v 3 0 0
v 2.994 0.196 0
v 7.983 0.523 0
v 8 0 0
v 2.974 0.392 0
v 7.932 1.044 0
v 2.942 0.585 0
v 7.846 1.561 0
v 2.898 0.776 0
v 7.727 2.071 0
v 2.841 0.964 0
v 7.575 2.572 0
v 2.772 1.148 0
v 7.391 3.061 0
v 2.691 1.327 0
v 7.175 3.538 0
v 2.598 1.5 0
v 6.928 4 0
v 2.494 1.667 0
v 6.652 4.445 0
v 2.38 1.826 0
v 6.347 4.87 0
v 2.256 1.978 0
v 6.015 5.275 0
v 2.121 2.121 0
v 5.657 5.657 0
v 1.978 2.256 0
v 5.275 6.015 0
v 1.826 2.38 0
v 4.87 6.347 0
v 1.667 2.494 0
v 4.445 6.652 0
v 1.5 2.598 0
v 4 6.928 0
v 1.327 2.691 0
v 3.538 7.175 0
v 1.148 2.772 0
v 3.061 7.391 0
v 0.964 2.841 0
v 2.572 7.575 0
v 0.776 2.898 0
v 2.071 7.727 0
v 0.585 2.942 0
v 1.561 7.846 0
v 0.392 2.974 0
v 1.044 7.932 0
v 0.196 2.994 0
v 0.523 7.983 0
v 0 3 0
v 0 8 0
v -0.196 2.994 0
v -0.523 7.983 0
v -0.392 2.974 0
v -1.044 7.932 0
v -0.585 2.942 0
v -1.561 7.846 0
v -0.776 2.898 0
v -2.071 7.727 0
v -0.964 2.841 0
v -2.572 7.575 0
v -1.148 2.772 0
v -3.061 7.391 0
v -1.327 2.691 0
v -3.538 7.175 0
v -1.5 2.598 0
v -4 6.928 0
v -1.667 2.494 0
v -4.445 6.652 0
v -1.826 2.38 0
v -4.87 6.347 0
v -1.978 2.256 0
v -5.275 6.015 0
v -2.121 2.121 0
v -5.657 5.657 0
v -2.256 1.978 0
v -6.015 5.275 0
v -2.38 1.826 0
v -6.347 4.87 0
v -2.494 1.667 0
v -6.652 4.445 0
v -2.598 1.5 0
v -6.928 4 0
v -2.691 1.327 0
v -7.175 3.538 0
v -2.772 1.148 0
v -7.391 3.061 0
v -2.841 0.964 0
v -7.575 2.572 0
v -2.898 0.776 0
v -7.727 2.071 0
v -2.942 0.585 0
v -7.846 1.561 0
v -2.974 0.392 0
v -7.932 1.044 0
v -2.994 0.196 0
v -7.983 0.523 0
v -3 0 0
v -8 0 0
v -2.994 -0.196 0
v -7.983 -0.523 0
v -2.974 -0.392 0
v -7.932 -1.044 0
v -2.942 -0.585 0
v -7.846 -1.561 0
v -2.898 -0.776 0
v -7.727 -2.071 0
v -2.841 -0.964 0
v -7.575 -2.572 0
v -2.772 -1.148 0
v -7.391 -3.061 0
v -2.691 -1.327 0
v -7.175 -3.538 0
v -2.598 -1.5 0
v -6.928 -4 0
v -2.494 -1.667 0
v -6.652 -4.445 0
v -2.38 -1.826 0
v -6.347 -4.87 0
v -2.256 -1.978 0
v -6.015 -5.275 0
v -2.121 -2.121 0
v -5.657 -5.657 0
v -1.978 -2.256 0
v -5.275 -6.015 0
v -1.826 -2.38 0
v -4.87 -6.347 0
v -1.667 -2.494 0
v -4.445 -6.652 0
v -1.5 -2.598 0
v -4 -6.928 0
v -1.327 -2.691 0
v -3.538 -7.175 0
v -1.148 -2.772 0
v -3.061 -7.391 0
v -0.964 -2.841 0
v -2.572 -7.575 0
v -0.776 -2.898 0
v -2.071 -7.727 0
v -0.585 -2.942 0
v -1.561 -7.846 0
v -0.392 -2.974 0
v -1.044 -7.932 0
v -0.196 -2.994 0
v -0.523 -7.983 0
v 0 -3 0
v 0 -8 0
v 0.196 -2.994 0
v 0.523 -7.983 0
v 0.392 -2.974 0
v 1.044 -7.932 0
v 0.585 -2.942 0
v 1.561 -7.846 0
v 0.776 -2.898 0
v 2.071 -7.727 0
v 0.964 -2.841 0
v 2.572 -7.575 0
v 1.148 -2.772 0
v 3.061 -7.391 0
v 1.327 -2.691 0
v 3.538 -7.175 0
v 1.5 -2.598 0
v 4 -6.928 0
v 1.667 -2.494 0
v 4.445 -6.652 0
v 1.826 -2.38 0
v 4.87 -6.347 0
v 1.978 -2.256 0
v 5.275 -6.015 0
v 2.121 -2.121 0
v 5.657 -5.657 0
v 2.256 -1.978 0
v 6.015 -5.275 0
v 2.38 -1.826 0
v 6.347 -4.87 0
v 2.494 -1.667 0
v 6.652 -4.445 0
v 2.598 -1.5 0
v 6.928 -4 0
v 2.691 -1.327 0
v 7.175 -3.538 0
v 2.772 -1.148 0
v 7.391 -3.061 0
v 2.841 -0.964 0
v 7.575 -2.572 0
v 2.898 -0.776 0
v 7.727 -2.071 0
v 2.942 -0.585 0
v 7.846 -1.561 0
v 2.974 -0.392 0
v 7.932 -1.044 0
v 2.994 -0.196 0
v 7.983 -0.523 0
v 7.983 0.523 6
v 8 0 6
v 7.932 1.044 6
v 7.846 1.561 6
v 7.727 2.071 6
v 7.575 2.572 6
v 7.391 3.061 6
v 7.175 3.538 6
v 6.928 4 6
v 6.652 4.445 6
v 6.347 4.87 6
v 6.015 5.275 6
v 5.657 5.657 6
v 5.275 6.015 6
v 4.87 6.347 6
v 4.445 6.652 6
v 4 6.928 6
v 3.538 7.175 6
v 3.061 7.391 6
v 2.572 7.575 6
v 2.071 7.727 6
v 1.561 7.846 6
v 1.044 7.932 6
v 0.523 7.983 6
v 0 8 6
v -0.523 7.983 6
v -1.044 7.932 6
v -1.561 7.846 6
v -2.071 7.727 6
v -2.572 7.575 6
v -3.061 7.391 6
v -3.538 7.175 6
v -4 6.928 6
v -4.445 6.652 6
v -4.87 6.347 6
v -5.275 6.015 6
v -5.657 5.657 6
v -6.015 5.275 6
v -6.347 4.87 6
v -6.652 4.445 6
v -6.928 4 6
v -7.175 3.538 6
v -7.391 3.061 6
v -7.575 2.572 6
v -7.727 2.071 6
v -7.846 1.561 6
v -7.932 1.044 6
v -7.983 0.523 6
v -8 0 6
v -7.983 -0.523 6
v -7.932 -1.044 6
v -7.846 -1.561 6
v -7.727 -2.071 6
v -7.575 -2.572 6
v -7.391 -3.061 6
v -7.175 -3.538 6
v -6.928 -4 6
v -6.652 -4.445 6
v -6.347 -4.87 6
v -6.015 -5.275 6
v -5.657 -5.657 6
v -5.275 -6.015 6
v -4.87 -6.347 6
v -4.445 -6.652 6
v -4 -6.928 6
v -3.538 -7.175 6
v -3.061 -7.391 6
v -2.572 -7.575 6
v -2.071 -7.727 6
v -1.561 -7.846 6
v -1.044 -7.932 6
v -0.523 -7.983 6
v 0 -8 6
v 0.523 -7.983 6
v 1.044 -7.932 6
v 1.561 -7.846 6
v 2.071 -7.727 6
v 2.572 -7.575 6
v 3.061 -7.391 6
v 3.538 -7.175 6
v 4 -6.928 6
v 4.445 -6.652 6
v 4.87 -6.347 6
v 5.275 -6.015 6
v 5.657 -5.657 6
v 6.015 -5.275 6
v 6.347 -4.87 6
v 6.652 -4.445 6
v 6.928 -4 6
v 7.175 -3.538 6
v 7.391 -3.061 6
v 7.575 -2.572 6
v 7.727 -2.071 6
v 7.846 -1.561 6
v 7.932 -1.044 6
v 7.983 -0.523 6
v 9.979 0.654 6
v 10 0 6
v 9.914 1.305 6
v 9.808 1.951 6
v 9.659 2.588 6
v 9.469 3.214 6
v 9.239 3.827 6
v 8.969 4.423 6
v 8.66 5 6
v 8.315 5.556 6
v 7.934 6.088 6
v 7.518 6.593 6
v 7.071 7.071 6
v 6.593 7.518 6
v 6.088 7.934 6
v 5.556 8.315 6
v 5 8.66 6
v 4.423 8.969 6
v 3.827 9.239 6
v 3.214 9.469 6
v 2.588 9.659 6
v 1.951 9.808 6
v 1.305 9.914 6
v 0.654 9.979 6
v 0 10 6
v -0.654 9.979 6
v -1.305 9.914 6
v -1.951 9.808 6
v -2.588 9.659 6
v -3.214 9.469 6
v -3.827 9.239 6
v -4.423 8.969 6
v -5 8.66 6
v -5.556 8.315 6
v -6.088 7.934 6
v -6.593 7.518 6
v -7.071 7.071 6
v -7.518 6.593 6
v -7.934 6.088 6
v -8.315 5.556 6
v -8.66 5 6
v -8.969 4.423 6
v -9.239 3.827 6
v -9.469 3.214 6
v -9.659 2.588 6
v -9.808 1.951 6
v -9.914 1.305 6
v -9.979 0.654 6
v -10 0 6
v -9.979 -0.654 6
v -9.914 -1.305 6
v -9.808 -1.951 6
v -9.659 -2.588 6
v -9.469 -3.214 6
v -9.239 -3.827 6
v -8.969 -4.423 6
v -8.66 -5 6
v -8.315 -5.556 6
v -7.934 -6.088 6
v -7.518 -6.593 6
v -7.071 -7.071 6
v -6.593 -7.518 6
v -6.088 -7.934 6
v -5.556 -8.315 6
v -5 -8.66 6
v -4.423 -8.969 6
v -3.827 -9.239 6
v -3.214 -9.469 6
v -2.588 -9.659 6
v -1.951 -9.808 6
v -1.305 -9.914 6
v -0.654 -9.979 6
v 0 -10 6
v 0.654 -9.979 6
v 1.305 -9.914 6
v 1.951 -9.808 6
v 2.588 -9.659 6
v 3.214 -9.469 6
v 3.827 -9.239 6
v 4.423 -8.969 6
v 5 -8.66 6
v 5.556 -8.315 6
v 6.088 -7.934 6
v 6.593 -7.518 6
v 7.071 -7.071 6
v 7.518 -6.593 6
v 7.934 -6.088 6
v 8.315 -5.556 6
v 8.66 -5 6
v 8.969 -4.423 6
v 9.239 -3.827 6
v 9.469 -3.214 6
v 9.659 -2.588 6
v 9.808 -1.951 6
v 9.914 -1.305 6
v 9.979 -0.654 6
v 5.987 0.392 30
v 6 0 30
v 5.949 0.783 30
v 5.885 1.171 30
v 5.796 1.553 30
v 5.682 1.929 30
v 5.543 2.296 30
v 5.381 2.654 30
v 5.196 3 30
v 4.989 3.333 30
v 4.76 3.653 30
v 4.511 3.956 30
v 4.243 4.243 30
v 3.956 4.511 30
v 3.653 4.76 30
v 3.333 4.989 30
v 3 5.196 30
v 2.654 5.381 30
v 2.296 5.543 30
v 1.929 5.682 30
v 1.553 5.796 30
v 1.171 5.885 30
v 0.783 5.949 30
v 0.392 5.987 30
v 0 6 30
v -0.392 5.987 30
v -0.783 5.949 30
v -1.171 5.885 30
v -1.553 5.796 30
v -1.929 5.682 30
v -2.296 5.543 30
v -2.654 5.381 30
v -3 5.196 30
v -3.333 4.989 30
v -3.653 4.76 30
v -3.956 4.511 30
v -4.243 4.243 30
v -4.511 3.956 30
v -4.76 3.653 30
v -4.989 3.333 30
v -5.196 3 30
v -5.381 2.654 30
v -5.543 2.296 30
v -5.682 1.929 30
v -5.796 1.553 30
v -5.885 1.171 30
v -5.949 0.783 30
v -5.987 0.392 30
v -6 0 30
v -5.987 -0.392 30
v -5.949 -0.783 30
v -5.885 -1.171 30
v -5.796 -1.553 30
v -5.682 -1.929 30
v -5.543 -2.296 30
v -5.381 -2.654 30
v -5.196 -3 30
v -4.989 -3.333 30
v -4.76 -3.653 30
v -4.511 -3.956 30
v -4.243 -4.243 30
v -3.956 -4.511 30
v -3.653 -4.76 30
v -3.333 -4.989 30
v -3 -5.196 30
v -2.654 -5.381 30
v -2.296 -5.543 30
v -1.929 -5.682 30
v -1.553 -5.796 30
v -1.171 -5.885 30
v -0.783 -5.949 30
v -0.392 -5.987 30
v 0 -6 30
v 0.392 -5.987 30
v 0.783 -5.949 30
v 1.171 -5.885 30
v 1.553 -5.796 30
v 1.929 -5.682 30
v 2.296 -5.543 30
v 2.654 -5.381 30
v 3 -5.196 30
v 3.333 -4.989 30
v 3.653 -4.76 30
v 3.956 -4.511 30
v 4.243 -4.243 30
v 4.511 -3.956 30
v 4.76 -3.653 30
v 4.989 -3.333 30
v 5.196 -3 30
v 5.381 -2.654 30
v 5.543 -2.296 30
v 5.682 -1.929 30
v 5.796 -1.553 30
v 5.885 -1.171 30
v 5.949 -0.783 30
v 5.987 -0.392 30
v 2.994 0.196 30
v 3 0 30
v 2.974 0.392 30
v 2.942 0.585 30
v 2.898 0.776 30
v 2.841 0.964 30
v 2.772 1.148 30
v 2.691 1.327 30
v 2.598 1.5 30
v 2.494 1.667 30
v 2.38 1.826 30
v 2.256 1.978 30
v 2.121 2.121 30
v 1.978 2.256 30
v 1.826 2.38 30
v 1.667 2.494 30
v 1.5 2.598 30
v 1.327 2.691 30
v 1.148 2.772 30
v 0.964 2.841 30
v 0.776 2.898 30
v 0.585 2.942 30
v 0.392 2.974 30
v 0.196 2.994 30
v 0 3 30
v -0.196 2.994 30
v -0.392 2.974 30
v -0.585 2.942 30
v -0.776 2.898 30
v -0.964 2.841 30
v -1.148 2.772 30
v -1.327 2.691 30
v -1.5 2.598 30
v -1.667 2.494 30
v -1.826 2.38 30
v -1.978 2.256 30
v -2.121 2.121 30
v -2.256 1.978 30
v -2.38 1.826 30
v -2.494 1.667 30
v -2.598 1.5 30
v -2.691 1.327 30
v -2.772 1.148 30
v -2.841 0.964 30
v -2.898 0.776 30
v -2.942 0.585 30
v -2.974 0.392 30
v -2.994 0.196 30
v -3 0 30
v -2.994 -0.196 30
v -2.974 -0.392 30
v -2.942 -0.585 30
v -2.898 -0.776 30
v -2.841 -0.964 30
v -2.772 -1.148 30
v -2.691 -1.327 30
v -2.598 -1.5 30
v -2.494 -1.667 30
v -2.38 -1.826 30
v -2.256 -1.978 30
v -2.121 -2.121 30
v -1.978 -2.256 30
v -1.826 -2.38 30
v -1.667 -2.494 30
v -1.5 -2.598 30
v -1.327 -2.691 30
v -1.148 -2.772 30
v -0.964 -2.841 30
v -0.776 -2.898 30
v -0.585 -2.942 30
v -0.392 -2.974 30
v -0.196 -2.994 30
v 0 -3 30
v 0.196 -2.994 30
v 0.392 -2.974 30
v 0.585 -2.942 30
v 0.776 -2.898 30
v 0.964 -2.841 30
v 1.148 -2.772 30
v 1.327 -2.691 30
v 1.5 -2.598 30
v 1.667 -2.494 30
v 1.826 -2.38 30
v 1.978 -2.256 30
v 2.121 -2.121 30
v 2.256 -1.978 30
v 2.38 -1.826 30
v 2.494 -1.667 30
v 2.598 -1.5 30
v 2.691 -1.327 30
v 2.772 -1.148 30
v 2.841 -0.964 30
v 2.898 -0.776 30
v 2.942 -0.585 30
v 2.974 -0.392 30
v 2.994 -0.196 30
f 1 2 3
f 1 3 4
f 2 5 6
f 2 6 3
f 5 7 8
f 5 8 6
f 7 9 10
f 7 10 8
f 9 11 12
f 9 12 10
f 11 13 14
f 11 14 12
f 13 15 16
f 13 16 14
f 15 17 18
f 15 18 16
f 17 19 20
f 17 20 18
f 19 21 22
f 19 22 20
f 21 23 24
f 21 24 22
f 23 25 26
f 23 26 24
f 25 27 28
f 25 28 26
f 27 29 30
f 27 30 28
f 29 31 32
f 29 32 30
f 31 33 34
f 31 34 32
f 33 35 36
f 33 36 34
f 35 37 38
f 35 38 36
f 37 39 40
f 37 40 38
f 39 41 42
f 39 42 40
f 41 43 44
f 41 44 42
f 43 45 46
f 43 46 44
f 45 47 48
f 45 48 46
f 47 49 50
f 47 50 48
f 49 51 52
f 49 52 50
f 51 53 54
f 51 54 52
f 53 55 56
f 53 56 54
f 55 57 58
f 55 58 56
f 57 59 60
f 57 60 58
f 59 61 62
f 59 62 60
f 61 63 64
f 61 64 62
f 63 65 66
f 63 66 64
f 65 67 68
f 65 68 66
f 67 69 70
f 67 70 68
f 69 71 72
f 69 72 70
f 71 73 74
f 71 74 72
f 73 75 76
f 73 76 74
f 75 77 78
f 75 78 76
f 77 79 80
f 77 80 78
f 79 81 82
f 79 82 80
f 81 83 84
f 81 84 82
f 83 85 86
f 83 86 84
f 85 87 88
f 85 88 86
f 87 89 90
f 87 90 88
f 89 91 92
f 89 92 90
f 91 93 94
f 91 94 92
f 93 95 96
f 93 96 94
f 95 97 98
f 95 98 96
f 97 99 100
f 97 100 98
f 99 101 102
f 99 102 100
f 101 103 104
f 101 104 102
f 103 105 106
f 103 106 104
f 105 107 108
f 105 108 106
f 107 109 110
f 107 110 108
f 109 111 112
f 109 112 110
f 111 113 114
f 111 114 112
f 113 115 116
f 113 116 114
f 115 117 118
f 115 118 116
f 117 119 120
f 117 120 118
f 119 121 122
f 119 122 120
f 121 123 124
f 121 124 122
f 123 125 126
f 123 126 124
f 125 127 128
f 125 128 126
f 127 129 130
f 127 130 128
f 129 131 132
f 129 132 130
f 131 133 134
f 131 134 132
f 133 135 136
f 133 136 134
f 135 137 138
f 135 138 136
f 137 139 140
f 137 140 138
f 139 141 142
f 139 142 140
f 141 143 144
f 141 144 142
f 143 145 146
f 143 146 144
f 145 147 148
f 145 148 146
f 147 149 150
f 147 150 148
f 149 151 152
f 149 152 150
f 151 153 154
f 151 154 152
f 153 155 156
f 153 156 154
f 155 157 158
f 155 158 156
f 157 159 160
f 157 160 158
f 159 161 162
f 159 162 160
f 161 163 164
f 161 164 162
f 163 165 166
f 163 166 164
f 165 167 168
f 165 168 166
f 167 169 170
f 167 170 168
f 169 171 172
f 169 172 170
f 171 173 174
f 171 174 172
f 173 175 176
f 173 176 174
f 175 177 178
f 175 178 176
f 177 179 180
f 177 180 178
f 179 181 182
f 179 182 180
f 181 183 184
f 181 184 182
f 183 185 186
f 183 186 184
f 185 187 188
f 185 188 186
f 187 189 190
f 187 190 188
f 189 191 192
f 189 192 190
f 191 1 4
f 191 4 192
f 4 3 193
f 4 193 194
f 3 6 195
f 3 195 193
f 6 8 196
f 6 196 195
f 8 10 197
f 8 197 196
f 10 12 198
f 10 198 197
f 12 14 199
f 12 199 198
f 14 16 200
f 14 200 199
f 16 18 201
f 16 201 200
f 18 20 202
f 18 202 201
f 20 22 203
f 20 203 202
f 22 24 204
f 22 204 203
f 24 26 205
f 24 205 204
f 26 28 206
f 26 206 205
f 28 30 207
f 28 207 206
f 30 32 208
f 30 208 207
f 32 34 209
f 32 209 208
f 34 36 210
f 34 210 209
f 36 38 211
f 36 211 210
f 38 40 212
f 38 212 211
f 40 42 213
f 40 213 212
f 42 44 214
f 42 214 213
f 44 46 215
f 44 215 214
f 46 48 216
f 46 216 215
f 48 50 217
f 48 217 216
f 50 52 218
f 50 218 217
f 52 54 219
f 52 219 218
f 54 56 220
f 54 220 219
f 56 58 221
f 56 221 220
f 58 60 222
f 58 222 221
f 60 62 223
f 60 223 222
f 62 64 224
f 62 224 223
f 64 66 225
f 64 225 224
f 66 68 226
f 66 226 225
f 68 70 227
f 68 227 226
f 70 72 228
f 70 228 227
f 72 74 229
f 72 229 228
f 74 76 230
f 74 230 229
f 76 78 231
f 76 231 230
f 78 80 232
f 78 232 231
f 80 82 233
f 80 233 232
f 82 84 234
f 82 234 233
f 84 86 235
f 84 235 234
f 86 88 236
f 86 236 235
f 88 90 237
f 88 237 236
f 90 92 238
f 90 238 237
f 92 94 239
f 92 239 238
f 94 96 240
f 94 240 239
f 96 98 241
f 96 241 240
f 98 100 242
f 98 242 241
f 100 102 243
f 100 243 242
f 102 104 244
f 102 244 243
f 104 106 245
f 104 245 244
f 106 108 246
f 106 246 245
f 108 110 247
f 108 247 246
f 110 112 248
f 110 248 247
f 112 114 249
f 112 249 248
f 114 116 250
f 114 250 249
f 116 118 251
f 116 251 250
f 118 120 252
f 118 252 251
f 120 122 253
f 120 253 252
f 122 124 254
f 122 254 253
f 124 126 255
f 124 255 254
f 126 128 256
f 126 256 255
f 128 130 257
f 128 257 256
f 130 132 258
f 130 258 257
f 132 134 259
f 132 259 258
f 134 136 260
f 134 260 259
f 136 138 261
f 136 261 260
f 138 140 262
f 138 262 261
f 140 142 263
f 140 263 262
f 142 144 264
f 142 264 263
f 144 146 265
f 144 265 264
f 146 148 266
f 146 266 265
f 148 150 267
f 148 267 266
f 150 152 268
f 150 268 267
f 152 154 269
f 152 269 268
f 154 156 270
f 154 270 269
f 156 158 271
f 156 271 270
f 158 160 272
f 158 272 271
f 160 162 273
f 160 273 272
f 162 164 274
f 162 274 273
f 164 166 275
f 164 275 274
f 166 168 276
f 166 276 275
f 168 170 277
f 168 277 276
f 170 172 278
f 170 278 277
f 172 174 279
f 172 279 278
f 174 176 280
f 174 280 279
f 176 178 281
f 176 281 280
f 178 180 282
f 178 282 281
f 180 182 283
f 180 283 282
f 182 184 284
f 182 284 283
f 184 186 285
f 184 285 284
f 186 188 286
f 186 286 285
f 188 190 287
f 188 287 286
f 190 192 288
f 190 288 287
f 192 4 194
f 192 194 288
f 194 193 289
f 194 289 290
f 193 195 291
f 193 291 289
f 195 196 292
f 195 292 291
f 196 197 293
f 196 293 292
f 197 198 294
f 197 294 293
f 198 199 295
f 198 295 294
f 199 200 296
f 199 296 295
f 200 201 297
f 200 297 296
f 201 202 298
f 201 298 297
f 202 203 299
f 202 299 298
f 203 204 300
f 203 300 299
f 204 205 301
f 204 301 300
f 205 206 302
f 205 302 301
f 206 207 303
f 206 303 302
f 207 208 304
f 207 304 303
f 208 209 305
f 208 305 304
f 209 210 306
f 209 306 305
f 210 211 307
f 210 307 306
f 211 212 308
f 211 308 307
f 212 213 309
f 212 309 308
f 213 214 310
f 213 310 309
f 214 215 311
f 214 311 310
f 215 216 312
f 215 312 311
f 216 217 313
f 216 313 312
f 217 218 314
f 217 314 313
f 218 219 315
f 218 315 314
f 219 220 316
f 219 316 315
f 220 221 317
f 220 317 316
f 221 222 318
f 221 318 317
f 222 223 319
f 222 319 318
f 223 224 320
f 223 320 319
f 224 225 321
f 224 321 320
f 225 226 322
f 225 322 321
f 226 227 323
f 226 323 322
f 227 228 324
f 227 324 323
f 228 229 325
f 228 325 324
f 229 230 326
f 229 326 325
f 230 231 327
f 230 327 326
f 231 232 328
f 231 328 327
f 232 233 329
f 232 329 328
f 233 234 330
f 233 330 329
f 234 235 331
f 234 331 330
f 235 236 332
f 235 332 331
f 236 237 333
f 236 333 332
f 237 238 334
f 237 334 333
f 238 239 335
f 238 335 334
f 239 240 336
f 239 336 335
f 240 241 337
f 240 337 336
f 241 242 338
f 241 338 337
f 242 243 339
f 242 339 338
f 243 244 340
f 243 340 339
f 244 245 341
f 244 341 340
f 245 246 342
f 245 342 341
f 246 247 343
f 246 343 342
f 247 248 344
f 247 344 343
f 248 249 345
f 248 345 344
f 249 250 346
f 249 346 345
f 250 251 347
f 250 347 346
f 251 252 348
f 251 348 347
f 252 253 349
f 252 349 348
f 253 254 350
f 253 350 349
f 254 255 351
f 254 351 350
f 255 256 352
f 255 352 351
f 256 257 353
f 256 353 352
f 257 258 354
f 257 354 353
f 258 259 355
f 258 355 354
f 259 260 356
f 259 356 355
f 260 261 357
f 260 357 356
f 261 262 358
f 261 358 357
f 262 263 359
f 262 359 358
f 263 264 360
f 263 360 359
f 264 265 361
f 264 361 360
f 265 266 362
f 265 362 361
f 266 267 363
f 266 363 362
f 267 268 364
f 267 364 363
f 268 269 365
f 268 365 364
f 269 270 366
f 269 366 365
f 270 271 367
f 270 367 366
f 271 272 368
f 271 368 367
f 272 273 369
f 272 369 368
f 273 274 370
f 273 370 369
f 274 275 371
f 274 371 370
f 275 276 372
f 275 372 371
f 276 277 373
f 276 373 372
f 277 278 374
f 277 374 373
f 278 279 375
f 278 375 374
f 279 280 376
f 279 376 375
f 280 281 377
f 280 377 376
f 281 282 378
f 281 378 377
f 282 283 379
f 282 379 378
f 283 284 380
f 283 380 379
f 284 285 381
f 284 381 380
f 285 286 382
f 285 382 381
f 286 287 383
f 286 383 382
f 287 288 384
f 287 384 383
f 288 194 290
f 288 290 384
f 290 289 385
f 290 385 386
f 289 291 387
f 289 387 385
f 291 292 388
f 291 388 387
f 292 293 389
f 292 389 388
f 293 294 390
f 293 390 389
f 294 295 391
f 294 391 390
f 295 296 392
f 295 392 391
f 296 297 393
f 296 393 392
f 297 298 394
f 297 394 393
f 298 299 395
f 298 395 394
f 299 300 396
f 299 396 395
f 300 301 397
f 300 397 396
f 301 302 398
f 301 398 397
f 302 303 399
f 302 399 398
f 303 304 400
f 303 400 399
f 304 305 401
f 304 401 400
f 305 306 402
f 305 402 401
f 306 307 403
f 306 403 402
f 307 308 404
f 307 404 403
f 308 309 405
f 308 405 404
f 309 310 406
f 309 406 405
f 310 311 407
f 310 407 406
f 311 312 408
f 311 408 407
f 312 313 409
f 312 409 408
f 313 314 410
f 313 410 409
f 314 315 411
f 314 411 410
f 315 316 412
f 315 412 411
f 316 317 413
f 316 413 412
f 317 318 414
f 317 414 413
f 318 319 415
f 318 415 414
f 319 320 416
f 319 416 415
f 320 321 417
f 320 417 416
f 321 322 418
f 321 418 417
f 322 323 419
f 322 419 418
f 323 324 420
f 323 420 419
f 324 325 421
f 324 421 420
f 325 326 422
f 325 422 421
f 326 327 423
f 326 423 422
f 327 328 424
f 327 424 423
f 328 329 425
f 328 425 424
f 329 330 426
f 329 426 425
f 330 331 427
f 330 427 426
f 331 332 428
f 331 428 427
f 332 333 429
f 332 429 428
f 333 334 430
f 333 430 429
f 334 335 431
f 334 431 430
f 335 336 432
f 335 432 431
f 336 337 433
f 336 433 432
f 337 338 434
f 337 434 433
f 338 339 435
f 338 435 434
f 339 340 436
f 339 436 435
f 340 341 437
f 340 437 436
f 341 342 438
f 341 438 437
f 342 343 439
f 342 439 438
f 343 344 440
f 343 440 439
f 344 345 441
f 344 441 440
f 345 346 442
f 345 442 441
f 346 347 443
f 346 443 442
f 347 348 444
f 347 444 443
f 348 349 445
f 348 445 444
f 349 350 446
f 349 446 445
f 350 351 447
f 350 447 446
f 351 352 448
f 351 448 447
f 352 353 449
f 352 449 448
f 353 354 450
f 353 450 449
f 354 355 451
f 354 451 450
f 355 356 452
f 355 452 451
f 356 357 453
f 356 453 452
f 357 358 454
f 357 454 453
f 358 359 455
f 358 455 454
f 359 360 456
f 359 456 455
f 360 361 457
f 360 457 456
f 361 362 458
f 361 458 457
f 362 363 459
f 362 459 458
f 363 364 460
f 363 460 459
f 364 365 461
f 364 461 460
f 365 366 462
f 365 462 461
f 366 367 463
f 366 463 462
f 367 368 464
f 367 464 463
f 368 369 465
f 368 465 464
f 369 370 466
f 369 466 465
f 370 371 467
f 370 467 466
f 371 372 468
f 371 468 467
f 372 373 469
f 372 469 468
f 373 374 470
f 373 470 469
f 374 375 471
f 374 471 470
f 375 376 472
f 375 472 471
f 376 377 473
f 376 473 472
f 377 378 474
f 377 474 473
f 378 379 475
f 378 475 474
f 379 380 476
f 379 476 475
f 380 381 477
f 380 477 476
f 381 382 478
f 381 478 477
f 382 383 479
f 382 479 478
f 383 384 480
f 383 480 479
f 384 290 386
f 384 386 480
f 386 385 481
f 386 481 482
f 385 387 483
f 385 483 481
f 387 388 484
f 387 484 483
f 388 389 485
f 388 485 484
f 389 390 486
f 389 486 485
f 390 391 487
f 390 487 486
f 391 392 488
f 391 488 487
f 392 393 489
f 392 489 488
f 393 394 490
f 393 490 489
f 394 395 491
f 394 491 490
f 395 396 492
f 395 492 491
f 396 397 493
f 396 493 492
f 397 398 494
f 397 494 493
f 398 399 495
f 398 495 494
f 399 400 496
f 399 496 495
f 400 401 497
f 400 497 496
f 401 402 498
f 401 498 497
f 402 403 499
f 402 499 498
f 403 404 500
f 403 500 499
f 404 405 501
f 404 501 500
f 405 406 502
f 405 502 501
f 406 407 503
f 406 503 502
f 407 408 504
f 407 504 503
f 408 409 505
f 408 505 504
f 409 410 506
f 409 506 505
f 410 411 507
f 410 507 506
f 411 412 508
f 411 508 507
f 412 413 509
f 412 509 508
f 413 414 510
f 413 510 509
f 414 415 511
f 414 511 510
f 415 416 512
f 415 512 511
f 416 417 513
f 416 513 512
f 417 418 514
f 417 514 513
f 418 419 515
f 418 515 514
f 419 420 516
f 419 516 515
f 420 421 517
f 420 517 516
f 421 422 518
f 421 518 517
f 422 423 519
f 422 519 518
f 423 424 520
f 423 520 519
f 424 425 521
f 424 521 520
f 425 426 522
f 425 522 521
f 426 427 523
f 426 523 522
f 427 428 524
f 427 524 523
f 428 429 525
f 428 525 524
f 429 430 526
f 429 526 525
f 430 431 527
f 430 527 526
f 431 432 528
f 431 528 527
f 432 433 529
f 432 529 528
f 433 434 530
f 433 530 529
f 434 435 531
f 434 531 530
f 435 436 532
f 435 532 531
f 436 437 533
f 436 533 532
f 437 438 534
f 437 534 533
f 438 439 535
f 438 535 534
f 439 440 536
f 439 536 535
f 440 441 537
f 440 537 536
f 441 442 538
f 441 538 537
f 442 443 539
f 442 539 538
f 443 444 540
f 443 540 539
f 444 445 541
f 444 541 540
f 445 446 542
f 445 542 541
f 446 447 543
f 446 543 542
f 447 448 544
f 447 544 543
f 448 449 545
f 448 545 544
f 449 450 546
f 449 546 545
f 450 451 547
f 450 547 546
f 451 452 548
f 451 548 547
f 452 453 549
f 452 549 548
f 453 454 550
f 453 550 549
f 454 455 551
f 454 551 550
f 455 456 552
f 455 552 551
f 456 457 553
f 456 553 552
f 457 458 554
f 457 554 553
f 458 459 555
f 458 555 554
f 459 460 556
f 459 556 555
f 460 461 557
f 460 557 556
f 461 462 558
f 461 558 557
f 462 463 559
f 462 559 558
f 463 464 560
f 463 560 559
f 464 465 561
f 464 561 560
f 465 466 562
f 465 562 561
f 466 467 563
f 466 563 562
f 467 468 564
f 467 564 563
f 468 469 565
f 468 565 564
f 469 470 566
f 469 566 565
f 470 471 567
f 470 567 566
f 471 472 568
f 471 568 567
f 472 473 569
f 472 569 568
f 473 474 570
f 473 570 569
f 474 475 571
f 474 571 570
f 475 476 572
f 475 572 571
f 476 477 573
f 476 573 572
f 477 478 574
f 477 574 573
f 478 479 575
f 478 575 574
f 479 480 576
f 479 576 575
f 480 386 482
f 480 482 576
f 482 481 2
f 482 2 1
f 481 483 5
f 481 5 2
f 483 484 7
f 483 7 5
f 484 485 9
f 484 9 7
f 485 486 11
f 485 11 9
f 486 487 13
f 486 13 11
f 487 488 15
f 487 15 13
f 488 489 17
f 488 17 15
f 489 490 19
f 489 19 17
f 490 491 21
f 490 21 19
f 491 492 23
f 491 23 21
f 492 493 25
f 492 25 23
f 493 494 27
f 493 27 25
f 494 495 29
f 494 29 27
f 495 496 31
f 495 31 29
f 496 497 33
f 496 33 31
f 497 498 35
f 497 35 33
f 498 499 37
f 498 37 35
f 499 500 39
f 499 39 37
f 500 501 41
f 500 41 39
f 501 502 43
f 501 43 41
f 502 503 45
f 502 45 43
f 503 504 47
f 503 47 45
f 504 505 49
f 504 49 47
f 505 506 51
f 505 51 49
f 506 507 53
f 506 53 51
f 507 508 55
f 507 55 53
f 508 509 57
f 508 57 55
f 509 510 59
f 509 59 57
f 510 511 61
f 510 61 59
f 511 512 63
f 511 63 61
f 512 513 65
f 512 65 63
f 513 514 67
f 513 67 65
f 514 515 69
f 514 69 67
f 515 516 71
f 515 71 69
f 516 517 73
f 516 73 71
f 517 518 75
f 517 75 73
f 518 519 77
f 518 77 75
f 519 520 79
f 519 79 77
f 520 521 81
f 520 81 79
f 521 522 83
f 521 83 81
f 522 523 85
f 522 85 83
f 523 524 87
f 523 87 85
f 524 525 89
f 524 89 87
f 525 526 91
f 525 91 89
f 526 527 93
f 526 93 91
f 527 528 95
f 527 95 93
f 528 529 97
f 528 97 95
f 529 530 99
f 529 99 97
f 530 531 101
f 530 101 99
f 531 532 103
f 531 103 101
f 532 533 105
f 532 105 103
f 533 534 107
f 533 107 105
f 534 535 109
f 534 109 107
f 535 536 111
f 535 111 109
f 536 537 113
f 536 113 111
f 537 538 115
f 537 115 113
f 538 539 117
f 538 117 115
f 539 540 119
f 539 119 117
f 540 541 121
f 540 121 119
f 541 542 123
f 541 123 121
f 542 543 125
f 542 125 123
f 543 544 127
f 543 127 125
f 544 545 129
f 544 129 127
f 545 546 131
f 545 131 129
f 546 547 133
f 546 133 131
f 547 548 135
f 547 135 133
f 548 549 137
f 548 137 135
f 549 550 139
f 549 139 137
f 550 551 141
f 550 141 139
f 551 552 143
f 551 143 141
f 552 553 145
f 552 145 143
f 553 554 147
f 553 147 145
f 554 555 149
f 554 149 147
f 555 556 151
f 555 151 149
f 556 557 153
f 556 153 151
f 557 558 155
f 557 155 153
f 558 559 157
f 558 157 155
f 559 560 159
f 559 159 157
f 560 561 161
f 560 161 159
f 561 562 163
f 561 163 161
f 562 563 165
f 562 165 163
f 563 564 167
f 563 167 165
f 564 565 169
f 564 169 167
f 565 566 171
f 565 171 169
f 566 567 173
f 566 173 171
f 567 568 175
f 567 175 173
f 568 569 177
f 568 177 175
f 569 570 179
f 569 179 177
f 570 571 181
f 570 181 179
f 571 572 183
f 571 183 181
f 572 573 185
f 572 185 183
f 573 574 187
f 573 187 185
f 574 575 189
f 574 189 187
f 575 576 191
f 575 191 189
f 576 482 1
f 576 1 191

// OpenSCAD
// Original MechIntel educational model. CC0-1.0. Units: mm.
// Not a standardized or load-rated component.
$fn=96;
// Section points: [radius, height], mm. Edit to change the profile.
section=[[3, 0], [8, 0], [8, 6], [10, 6], [6, 30], [3, 30]];
rotate_extrude($fn=96) polygon(points=section);
